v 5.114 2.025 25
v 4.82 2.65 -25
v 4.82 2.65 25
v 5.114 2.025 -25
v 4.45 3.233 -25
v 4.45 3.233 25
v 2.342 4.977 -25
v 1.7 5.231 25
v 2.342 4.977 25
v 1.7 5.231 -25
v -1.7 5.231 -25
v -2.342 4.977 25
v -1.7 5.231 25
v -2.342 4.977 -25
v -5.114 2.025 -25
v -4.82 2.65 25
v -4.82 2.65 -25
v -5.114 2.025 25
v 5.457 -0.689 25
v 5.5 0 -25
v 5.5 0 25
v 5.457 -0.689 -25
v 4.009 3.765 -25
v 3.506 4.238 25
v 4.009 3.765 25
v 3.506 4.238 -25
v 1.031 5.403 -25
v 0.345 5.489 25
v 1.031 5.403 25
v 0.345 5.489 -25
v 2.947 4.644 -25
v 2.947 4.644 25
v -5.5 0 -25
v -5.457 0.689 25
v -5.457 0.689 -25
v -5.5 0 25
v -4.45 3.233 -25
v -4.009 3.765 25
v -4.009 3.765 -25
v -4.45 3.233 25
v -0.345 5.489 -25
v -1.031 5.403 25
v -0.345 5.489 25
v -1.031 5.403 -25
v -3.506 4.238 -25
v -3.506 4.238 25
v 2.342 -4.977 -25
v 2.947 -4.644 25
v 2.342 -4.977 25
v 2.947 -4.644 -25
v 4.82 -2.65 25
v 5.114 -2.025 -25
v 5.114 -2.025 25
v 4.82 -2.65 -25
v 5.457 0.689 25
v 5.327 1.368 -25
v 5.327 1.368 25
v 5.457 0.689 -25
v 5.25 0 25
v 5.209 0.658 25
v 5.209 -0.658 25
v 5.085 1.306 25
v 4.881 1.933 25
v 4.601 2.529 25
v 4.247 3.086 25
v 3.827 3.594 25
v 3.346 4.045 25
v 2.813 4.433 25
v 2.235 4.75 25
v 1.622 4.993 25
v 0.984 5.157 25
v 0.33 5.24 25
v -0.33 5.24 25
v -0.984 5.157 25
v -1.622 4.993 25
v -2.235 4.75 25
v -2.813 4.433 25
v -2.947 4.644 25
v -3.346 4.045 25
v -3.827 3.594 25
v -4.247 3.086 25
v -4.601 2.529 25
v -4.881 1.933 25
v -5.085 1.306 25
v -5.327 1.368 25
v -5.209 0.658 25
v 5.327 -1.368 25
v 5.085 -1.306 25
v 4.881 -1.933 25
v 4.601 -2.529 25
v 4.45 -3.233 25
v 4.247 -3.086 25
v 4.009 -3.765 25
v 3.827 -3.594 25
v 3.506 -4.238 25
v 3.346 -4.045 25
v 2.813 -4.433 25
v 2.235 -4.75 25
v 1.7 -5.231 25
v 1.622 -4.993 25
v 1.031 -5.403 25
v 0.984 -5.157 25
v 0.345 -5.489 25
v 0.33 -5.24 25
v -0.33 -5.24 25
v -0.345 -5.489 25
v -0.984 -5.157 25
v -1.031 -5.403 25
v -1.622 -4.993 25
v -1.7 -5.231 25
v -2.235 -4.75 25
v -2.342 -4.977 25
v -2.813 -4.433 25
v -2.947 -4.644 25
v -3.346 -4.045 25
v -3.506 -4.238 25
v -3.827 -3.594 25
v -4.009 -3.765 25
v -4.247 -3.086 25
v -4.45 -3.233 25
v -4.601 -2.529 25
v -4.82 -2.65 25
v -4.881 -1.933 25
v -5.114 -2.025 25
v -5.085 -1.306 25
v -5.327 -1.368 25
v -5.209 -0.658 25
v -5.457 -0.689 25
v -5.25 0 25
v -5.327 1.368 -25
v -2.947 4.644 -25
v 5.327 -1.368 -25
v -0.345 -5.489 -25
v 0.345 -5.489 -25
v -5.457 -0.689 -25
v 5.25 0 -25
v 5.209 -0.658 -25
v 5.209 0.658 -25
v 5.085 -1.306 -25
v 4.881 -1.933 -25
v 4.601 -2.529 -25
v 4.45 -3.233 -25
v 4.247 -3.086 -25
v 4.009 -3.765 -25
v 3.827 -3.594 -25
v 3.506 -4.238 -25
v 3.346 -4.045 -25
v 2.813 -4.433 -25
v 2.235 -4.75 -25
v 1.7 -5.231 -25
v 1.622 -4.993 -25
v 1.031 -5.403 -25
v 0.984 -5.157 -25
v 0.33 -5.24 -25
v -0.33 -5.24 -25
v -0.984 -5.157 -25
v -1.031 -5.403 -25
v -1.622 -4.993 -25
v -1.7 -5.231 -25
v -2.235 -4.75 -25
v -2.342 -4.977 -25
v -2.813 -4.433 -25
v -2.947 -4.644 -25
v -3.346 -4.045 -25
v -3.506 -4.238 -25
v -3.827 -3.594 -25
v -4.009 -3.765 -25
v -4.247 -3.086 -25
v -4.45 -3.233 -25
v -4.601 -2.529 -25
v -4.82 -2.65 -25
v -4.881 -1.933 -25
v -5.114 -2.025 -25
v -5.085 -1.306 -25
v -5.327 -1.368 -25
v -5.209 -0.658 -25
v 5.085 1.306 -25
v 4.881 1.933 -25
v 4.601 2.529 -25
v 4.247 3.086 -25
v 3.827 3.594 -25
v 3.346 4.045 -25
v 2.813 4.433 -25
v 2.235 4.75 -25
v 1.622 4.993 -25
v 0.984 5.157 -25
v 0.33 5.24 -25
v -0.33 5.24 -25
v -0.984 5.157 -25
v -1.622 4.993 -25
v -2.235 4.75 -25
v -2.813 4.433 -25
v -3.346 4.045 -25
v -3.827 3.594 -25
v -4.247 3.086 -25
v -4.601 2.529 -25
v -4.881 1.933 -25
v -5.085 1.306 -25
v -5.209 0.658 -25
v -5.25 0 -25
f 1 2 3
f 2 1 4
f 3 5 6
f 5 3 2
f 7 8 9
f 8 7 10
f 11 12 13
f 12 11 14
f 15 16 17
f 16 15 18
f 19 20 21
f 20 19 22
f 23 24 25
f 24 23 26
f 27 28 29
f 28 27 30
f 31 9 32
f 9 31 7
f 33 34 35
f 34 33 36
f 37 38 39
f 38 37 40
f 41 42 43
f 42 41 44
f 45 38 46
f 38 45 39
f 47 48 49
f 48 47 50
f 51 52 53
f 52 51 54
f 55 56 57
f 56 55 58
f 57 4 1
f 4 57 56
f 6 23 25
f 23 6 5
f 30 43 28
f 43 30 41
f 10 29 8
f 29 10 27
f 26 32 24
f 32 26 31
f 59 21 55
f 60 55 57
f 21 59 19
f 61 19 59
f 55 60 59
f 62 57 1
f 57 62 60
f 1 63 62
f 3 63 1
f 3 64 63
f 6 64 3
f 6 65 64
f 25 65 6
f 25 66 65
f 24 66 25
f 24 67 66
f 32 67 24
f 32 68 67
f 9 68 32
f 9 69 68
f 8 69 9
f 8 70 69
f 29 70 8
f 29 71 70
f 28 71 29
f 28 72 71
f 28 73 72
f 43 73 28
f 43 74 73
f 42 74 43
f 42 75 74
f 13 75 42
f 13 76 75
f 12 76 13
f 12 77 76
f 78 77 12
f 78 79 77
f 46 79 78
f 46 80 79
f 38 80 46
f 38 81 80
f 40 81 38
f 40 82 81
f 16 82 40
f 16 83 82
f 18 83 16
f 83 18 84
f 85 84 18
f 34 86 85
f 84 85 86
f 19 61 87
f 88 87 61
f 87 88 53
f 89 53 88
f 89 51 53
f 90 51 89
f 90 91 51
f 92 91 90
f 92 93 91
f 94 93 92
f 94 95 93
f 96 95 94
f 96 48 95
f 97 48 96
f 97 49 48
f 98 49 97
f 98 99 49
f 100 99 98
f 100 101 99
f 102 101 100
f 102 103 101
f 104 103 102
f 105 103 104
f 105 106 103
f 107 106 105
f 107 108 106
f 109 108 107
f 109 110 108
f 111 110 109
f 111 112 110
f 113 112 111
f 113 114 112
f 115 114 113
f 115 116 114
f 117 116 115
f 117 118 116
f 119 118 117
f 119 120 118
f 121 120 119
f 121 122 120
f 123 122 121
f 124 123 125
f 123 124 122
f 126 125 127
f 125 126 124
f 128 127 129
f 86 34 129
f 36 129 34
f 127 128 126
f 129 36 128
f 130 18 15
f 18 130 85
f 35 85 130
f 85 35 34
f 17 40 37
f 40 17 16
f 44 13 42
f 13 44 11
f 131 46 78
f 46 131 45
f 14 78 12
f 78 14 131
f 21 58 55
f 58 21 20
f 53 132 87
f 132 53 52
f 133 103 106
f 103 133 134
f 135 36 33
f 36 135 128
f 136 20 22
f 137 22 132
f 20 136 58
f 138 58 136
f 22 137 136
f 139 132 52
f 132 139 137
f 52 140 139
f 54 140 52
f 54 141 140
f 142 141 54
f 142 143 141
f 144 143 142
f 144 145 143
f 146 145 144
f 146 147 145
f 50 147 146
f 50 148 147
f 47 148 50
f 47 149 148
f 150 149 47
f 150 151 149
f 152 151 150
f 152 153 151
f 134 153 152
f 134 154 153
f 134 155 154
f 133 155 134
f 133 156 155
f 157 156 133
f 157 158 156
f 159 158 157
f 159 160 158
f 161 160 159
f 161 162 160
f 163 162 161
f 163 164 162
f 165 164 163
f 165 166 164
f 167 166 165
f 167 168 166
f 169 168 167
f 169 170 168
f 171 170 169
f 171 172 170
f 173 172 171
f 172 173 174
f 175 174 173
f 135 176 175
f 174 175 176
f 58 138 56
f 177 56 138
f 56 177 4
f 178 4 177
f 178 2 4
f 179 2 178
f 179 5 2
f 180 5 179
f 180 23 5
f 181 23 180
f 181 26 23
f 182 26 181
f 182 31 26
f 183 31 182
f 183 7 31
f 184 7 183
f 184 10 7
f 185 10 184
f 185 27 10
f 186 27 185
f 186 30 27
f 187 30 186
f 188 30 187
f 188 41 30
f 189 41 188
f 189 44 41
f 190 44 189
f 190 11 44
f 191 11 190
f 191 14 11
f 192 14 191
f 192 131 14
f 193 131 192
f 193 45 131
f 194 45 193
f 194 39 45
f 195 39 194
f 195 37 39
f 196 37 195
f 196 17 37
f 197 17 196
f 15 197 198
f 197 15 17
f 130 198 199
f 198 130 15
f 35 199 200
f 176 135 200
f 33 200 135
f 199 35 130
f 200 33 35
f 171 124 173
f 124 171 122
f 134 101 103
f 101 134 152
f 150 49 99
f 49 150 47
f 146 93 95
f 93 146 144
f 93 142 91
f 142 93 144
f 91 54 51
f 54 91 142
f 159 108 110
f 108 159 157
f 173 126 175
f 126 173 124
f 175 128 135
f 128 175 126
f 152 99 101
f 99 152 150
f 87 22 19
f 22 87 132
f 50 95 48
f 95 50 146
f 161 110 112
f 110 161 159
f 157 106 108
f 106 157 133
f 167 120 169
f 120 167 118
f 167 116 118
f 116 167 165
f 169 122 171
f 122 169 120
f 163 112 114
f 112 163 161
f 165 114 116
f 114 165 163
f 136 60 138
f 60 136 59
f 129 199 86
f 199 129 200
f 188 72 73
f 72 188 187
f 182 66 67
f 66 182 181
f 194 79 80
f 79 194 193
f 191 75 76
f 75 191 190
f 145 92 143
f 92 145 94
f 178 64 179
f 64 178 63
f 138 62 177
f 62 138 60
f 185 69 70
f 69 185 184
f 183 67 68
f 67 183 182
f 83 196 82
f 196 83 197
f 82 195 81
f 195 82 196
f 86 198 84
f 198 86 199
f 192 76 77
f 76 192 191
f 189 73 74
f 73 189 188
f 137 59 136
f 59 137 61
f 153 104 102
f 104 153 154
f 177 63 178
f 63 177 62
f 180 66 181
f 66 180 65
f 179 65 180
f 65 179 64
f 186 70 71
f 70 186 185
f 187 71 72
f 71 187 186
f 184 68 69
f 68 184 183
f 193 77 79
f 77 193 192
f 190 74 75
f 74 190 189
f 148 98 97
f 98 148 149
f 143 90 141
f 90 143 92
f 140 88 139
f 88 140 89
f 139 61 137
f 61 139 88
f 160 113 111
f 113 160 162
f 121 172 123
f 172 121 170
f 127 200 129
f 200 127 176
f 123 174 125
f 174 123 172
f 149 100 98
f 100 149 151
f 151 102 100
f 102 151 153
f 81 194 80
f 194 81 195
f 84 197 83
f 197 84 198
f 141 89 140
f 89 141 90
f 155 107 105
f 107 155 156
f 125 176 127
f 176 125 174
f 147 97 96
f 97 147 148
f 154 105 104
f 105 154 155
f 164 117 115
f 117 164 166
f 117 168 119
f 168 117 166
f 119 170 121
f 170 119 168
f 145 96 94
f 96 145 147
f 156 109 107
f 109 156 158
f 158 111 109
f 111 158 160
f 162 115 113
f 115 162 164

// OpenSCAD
$fn = 50;


difference() {
	union() {
		translate(v = [0, 0, -25.0000000000]) {
			cylinder(h = 50, r = 5.5000000000);
		}
	}
	union() {
		translate(v = [0, 0, -100.0000000000]) {
			cylinder(h = 200, r = 5.2500000000);
		}
	}
}
